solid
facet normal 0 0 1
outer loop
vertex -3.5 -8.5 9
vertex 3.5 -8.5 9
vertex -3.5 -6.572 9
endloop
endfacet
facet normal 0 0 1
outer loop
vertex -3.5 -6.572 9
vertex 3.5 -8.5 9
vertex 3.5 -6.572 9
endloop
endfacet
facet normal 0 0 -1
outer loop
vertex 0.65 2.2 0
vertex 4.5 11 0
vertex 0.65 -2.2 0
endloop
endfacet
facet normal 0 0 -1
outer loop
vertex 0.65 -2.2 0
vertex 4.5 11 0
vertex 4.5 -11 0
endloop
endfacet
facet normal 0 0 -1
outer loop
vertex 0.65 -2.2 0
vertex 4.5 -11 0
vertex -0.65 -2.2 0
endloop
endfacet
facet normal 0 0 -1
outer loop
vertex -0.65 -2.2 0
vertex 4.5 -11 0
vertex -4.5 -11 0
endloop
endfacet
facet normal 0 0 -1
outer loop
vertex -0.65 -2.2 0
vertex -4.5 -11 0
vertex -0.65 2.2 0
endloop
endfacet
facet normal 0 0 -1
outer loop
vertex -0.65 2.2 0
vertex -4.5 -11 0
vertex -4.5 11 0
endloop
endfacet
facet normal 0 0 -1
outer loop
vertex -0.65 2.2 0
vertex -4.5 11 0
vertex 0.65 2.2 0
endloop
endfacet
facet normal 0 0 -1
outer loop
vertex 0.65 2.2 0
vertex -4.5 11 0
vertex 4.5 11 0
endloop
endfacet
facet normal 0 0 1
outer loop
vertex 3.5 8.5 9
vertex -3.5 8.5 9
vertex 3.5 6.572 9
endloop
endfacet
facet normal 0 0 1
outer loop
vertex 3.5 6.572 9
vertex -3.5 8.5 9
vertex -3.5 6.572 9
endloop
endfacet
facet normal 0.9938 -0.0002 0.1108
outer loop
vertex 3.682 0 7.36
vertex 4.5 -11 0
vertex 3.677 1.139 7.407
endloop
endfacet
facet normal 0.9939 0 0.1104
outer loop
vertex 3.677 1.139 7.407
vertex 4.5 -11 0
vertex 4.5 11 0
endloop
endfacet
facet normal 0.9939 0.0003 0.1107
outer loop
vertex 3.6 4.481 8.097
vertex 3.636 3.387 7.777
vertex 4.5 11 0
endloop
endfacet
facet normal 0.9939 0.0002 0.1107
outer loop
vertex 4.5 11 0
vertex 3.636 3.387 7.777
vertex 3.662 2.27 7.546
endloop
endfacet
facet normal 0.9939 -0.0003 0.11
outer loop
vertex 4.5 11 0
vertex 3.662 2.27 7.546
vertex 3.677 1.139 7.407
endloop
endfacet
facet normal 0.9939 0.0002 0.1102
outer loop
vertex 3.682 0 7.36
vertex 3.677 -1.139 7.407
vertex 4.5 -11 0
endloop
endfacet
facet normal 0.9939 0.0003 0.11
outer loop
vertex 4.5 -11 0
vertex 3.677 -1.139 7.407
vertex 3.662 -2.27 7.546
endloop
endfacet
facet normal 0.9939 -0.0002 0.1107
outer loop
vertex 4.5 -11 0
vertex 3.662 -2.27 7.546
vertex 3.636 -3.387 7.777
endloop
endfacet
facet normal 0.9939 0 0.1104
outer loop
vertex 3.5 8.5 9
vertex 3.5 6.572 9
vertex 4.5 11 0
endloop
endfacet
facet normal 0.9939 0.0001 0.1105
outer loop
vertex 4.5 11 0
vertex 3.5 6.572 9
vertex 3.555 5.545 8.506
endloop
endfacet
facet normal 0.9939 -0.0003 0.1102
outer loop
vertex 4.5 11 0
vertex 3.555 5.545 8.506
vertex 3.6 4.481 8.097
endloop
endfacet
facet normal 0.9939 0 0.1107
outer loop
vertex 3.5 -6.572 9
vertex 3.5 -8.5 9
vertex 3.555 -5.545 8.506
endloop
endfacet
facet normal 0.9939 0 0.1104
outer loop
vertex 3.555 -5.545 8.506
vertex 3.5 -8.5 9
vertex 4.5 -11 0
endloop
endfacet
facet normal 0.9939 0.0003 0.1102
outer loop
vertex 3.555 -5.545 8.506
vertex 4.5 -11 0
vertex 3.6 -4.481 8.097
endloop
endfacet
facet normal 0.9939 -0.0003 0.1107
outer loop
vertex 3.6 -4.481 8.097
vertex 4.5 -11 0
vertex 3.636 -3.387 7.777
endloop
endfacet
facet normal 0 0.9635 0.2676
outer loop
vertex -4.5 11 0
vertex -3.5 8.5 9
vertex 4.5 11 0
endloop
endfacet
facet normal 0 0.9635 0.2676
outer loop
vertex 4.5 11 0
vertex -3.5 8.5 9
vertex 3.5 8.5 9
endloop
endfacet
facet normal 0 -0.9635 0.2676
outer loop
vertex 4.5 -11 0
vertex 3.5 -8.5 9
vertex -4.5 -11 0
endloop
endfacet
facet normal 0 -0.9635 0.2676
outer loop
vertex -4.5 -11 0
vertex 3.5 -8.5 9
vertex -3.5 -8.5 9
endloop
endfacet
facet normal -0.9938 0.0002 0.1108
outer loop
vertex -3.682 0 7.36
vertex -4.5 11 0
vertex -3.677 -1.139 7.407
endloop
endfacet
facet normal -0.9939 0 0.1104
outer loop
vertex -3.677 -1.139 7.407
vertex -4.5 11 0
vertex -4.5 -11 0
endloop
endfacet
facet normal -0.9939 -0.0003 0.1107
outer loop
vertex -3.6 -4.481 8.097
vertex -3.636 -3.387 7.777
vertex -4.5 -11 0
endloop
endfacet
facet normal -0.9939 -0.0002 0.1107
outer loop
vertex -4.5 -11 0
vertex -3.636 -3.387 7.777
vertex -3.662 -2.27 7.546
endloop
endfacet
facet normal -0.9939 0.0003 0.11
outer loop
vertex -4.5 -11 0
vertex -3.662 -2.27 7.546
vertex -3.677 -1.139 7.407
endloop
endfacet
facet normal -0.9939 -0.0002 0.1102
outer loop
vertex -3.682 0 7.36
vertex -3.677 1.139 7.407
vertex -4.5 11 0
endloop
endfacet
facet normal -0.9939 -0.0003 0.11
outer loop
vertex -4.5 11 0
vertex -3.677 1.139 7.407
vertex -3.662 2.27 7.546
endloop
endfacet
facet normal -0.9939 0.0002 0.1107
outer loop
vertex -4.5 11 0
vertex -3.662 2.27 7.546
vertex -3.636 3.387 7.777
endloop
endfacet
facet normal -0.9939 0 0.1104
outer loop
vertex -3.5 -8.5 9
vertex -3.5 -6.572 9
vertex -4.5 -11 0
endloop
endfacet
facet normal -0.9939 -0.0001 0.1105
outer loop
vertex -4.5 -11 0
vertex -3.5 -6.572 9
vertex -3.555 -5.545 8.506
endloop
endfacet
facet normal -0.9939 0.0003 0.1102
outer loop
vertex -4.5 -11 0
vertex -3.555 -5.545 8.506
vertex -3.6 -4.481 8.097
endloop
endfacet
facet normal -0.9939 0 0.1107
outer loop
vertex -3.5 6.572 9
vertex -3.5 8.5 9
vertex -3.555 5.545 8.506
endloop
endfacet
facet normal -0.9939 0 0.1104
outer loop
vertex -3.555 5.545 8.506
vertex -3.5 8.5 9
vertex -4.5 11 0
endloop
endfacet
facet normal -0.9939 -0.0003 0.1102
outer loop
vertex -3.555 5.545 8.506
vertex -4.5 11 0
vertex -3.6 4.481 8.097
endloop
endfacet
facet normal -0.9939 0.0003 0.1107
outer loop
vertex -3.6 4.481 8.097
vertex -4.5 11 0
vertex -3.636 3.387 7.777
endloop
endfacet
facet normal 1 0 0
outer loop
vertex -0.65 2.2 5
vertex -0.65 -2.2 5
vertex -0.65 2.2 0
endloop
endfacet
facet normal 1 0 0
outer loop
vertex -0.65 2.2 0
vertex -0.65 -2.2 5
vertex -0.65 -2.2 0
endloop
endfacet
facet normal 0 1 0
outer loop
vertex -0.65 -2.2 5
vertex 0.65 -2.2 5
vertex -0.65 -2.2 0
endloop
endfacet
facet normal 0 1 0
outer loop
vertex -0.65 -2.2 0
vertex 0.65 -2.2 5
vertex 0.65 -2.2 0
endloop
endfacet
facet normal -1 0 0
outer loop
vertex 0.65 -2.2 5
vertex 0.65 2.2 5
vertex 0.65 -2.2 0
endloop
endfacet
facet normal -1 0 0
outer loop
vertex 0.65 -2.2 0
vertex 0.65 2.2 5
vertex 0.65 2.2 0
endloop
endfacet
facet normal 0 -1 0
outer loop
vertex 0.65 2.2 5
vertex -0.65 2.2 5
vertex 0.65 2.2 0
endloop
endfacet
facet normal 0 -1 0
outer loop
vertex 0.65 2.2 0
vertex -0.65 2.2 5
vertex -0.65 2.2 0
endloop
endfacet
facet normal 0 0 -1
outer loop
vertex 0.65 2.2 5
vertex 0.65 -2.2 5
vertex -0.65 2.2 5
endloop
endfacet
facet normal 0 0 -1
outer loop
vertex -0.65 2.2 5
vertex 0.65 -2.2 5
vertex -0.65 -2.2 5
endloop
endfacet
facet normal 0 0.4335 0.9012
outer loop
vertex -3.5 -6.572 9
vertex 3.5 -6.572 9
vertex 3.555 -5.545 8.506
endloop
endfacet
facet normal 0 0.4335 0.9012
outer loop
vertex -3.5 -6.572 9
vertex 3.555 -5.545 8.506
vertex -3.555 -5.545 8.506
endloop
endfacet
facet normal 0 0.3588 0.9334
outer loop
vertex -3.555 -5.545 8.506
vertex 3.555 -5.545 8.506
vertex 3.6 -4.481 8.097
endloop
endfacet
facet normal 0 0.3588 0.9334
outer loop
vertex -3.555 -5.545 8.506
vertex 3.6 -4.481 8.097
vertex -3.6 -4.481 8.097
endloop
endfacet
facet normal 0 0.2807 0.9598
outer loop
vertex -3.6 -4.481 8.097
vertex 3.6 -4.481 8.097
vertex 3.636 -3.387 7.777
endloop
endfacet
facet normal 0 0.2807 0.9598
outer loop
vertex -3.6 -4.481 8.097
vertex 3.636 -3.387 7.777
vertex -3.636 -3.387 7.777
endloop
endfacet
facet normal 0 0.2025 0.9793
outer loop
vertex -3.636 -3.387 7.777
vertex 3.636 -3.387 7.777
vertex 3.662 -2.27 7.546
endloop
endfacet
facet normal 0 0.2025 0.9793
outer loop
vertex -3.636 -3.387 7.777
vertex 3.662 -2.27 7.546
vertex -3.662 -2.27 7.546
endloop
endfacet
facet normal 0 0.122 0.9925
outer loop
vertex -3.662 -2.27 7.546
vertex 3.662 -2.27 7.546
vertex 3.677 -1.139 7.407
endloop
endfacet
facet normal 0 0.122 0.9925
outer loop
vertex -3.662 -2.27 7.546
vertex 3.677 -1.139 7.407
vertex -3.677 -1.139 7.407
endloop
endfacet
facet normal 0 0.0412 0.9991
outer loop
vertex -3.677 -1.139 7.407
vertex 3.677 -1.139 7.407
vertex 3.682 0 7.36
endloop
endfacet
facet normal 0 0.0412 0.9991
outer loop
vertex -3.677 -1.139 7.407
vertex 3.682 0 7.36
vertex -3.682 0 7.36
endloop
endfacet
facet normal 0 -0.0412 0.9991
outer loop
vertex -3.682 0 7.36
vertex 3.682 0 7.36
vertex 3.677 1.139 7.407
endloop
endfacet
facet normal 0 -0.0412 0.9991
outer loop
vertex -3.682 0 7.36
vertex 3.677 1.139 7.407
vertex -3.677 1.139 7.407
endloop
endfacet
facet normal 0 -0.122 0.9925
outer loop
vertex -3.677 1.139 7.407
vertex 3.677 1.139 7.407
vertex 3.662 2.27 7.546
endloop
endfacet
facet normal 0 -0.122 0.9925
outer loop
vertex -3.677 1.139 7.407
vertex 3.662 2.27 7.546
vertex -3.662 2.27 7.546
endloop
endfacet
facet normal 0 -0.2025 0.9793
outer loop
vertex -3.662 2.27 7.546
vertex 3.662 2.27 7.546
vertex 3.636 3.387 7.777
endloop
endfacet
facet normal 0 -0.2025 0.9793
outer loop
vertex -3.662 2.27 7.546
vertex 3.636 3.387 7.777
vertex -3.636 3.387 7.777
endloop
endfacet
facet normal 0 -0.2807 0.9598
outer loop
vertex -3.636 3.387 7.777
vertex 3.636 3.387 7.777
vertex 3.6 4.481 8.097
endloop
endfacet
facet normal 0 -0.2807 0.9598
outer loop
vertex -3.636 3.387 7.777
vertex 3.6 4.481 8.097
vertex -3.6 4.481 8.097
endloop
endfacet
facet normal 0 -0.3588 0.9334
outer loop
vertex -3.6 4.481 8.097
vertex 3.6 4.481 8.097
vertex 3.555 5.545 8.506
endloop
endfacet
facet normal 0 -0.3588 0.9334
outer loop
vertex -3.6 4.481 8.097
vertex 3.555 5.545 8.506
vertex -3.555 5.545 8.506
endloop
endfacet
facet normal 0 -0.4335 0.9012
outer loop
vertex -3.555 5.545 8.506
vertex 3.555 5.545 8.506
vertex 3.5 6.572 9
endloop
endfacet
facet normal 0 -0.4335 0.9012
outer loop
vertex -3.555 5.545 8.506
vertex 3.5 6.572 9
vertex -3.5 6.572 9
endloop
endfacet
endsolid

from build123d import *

# Parameters (mm, degrees)
SKETCH3_W          = 1.3
SKETCH3_H          = 4.4
CUT_EXTRUDE1_DEPTH = 5
CUT_EXTRUDE2_DEPTH = 10


with BuildPart() as part:
    # Sketch2 → Loft1 section 0
    with BuildSketch(Plane.XY.offset(9)):
        with BuildLine():
            Line((-3.5, 8.5), (3.5, 8.5))
            Line((3.5, 8.5), (3.5, -8.5))
            Line((3.5, -8.5), (-3.5, -8.5))
            Line((-3.5, -8.5), (-3.5, 8.5))
        make_face()
    # Sketch1 → Loft1 section 1
    with BuildSketch(Plane.XY):
        with BuildLine():
            Line((-4.5, 11), (4.5, 11))
            Line((4.5, 11), (4.5, -11))
            Line((4.5, -11), (-4.5, -11))
            Line((-4.5, -11), (-4.5, 11))
        make_face()
    loft()

    # Sketch3 → Cut-Extrude1 (cut)
    with BuildSketch(Plane(origin=(0, 0, 0), x_dir=(-1, 0, 0), z_dir=(0, 0, -1))):
        Rectangle(SKETCH3_W, SKETCH3_H)
    extrude(amount=-CUT_EXTRUDE1_DEPTH, mode=Mode.SUBTRACT)

    # Sketch4 → Cut-Extrude2 (cut, symmetric)
    with BuildSketch(Plane(origin=(0, 0, 0), x_dir=(0, 0, -1), z_dir=(1, 0, 0))):
        with BuildLine():
            Line((-9.861070231, 7.982564486), (-10.140578955, -8.37058785))
            ThreePointArc((-10.140578955, -8.37058785), (-7.362485205, -0.239106283), (-9.861070231, 7.982564486))
        make_face()
    extrude(amount=CUT_EXTRUDE2_DEPTH, both=True, mode=Mode.SUBTRACT)


solid = part.part
